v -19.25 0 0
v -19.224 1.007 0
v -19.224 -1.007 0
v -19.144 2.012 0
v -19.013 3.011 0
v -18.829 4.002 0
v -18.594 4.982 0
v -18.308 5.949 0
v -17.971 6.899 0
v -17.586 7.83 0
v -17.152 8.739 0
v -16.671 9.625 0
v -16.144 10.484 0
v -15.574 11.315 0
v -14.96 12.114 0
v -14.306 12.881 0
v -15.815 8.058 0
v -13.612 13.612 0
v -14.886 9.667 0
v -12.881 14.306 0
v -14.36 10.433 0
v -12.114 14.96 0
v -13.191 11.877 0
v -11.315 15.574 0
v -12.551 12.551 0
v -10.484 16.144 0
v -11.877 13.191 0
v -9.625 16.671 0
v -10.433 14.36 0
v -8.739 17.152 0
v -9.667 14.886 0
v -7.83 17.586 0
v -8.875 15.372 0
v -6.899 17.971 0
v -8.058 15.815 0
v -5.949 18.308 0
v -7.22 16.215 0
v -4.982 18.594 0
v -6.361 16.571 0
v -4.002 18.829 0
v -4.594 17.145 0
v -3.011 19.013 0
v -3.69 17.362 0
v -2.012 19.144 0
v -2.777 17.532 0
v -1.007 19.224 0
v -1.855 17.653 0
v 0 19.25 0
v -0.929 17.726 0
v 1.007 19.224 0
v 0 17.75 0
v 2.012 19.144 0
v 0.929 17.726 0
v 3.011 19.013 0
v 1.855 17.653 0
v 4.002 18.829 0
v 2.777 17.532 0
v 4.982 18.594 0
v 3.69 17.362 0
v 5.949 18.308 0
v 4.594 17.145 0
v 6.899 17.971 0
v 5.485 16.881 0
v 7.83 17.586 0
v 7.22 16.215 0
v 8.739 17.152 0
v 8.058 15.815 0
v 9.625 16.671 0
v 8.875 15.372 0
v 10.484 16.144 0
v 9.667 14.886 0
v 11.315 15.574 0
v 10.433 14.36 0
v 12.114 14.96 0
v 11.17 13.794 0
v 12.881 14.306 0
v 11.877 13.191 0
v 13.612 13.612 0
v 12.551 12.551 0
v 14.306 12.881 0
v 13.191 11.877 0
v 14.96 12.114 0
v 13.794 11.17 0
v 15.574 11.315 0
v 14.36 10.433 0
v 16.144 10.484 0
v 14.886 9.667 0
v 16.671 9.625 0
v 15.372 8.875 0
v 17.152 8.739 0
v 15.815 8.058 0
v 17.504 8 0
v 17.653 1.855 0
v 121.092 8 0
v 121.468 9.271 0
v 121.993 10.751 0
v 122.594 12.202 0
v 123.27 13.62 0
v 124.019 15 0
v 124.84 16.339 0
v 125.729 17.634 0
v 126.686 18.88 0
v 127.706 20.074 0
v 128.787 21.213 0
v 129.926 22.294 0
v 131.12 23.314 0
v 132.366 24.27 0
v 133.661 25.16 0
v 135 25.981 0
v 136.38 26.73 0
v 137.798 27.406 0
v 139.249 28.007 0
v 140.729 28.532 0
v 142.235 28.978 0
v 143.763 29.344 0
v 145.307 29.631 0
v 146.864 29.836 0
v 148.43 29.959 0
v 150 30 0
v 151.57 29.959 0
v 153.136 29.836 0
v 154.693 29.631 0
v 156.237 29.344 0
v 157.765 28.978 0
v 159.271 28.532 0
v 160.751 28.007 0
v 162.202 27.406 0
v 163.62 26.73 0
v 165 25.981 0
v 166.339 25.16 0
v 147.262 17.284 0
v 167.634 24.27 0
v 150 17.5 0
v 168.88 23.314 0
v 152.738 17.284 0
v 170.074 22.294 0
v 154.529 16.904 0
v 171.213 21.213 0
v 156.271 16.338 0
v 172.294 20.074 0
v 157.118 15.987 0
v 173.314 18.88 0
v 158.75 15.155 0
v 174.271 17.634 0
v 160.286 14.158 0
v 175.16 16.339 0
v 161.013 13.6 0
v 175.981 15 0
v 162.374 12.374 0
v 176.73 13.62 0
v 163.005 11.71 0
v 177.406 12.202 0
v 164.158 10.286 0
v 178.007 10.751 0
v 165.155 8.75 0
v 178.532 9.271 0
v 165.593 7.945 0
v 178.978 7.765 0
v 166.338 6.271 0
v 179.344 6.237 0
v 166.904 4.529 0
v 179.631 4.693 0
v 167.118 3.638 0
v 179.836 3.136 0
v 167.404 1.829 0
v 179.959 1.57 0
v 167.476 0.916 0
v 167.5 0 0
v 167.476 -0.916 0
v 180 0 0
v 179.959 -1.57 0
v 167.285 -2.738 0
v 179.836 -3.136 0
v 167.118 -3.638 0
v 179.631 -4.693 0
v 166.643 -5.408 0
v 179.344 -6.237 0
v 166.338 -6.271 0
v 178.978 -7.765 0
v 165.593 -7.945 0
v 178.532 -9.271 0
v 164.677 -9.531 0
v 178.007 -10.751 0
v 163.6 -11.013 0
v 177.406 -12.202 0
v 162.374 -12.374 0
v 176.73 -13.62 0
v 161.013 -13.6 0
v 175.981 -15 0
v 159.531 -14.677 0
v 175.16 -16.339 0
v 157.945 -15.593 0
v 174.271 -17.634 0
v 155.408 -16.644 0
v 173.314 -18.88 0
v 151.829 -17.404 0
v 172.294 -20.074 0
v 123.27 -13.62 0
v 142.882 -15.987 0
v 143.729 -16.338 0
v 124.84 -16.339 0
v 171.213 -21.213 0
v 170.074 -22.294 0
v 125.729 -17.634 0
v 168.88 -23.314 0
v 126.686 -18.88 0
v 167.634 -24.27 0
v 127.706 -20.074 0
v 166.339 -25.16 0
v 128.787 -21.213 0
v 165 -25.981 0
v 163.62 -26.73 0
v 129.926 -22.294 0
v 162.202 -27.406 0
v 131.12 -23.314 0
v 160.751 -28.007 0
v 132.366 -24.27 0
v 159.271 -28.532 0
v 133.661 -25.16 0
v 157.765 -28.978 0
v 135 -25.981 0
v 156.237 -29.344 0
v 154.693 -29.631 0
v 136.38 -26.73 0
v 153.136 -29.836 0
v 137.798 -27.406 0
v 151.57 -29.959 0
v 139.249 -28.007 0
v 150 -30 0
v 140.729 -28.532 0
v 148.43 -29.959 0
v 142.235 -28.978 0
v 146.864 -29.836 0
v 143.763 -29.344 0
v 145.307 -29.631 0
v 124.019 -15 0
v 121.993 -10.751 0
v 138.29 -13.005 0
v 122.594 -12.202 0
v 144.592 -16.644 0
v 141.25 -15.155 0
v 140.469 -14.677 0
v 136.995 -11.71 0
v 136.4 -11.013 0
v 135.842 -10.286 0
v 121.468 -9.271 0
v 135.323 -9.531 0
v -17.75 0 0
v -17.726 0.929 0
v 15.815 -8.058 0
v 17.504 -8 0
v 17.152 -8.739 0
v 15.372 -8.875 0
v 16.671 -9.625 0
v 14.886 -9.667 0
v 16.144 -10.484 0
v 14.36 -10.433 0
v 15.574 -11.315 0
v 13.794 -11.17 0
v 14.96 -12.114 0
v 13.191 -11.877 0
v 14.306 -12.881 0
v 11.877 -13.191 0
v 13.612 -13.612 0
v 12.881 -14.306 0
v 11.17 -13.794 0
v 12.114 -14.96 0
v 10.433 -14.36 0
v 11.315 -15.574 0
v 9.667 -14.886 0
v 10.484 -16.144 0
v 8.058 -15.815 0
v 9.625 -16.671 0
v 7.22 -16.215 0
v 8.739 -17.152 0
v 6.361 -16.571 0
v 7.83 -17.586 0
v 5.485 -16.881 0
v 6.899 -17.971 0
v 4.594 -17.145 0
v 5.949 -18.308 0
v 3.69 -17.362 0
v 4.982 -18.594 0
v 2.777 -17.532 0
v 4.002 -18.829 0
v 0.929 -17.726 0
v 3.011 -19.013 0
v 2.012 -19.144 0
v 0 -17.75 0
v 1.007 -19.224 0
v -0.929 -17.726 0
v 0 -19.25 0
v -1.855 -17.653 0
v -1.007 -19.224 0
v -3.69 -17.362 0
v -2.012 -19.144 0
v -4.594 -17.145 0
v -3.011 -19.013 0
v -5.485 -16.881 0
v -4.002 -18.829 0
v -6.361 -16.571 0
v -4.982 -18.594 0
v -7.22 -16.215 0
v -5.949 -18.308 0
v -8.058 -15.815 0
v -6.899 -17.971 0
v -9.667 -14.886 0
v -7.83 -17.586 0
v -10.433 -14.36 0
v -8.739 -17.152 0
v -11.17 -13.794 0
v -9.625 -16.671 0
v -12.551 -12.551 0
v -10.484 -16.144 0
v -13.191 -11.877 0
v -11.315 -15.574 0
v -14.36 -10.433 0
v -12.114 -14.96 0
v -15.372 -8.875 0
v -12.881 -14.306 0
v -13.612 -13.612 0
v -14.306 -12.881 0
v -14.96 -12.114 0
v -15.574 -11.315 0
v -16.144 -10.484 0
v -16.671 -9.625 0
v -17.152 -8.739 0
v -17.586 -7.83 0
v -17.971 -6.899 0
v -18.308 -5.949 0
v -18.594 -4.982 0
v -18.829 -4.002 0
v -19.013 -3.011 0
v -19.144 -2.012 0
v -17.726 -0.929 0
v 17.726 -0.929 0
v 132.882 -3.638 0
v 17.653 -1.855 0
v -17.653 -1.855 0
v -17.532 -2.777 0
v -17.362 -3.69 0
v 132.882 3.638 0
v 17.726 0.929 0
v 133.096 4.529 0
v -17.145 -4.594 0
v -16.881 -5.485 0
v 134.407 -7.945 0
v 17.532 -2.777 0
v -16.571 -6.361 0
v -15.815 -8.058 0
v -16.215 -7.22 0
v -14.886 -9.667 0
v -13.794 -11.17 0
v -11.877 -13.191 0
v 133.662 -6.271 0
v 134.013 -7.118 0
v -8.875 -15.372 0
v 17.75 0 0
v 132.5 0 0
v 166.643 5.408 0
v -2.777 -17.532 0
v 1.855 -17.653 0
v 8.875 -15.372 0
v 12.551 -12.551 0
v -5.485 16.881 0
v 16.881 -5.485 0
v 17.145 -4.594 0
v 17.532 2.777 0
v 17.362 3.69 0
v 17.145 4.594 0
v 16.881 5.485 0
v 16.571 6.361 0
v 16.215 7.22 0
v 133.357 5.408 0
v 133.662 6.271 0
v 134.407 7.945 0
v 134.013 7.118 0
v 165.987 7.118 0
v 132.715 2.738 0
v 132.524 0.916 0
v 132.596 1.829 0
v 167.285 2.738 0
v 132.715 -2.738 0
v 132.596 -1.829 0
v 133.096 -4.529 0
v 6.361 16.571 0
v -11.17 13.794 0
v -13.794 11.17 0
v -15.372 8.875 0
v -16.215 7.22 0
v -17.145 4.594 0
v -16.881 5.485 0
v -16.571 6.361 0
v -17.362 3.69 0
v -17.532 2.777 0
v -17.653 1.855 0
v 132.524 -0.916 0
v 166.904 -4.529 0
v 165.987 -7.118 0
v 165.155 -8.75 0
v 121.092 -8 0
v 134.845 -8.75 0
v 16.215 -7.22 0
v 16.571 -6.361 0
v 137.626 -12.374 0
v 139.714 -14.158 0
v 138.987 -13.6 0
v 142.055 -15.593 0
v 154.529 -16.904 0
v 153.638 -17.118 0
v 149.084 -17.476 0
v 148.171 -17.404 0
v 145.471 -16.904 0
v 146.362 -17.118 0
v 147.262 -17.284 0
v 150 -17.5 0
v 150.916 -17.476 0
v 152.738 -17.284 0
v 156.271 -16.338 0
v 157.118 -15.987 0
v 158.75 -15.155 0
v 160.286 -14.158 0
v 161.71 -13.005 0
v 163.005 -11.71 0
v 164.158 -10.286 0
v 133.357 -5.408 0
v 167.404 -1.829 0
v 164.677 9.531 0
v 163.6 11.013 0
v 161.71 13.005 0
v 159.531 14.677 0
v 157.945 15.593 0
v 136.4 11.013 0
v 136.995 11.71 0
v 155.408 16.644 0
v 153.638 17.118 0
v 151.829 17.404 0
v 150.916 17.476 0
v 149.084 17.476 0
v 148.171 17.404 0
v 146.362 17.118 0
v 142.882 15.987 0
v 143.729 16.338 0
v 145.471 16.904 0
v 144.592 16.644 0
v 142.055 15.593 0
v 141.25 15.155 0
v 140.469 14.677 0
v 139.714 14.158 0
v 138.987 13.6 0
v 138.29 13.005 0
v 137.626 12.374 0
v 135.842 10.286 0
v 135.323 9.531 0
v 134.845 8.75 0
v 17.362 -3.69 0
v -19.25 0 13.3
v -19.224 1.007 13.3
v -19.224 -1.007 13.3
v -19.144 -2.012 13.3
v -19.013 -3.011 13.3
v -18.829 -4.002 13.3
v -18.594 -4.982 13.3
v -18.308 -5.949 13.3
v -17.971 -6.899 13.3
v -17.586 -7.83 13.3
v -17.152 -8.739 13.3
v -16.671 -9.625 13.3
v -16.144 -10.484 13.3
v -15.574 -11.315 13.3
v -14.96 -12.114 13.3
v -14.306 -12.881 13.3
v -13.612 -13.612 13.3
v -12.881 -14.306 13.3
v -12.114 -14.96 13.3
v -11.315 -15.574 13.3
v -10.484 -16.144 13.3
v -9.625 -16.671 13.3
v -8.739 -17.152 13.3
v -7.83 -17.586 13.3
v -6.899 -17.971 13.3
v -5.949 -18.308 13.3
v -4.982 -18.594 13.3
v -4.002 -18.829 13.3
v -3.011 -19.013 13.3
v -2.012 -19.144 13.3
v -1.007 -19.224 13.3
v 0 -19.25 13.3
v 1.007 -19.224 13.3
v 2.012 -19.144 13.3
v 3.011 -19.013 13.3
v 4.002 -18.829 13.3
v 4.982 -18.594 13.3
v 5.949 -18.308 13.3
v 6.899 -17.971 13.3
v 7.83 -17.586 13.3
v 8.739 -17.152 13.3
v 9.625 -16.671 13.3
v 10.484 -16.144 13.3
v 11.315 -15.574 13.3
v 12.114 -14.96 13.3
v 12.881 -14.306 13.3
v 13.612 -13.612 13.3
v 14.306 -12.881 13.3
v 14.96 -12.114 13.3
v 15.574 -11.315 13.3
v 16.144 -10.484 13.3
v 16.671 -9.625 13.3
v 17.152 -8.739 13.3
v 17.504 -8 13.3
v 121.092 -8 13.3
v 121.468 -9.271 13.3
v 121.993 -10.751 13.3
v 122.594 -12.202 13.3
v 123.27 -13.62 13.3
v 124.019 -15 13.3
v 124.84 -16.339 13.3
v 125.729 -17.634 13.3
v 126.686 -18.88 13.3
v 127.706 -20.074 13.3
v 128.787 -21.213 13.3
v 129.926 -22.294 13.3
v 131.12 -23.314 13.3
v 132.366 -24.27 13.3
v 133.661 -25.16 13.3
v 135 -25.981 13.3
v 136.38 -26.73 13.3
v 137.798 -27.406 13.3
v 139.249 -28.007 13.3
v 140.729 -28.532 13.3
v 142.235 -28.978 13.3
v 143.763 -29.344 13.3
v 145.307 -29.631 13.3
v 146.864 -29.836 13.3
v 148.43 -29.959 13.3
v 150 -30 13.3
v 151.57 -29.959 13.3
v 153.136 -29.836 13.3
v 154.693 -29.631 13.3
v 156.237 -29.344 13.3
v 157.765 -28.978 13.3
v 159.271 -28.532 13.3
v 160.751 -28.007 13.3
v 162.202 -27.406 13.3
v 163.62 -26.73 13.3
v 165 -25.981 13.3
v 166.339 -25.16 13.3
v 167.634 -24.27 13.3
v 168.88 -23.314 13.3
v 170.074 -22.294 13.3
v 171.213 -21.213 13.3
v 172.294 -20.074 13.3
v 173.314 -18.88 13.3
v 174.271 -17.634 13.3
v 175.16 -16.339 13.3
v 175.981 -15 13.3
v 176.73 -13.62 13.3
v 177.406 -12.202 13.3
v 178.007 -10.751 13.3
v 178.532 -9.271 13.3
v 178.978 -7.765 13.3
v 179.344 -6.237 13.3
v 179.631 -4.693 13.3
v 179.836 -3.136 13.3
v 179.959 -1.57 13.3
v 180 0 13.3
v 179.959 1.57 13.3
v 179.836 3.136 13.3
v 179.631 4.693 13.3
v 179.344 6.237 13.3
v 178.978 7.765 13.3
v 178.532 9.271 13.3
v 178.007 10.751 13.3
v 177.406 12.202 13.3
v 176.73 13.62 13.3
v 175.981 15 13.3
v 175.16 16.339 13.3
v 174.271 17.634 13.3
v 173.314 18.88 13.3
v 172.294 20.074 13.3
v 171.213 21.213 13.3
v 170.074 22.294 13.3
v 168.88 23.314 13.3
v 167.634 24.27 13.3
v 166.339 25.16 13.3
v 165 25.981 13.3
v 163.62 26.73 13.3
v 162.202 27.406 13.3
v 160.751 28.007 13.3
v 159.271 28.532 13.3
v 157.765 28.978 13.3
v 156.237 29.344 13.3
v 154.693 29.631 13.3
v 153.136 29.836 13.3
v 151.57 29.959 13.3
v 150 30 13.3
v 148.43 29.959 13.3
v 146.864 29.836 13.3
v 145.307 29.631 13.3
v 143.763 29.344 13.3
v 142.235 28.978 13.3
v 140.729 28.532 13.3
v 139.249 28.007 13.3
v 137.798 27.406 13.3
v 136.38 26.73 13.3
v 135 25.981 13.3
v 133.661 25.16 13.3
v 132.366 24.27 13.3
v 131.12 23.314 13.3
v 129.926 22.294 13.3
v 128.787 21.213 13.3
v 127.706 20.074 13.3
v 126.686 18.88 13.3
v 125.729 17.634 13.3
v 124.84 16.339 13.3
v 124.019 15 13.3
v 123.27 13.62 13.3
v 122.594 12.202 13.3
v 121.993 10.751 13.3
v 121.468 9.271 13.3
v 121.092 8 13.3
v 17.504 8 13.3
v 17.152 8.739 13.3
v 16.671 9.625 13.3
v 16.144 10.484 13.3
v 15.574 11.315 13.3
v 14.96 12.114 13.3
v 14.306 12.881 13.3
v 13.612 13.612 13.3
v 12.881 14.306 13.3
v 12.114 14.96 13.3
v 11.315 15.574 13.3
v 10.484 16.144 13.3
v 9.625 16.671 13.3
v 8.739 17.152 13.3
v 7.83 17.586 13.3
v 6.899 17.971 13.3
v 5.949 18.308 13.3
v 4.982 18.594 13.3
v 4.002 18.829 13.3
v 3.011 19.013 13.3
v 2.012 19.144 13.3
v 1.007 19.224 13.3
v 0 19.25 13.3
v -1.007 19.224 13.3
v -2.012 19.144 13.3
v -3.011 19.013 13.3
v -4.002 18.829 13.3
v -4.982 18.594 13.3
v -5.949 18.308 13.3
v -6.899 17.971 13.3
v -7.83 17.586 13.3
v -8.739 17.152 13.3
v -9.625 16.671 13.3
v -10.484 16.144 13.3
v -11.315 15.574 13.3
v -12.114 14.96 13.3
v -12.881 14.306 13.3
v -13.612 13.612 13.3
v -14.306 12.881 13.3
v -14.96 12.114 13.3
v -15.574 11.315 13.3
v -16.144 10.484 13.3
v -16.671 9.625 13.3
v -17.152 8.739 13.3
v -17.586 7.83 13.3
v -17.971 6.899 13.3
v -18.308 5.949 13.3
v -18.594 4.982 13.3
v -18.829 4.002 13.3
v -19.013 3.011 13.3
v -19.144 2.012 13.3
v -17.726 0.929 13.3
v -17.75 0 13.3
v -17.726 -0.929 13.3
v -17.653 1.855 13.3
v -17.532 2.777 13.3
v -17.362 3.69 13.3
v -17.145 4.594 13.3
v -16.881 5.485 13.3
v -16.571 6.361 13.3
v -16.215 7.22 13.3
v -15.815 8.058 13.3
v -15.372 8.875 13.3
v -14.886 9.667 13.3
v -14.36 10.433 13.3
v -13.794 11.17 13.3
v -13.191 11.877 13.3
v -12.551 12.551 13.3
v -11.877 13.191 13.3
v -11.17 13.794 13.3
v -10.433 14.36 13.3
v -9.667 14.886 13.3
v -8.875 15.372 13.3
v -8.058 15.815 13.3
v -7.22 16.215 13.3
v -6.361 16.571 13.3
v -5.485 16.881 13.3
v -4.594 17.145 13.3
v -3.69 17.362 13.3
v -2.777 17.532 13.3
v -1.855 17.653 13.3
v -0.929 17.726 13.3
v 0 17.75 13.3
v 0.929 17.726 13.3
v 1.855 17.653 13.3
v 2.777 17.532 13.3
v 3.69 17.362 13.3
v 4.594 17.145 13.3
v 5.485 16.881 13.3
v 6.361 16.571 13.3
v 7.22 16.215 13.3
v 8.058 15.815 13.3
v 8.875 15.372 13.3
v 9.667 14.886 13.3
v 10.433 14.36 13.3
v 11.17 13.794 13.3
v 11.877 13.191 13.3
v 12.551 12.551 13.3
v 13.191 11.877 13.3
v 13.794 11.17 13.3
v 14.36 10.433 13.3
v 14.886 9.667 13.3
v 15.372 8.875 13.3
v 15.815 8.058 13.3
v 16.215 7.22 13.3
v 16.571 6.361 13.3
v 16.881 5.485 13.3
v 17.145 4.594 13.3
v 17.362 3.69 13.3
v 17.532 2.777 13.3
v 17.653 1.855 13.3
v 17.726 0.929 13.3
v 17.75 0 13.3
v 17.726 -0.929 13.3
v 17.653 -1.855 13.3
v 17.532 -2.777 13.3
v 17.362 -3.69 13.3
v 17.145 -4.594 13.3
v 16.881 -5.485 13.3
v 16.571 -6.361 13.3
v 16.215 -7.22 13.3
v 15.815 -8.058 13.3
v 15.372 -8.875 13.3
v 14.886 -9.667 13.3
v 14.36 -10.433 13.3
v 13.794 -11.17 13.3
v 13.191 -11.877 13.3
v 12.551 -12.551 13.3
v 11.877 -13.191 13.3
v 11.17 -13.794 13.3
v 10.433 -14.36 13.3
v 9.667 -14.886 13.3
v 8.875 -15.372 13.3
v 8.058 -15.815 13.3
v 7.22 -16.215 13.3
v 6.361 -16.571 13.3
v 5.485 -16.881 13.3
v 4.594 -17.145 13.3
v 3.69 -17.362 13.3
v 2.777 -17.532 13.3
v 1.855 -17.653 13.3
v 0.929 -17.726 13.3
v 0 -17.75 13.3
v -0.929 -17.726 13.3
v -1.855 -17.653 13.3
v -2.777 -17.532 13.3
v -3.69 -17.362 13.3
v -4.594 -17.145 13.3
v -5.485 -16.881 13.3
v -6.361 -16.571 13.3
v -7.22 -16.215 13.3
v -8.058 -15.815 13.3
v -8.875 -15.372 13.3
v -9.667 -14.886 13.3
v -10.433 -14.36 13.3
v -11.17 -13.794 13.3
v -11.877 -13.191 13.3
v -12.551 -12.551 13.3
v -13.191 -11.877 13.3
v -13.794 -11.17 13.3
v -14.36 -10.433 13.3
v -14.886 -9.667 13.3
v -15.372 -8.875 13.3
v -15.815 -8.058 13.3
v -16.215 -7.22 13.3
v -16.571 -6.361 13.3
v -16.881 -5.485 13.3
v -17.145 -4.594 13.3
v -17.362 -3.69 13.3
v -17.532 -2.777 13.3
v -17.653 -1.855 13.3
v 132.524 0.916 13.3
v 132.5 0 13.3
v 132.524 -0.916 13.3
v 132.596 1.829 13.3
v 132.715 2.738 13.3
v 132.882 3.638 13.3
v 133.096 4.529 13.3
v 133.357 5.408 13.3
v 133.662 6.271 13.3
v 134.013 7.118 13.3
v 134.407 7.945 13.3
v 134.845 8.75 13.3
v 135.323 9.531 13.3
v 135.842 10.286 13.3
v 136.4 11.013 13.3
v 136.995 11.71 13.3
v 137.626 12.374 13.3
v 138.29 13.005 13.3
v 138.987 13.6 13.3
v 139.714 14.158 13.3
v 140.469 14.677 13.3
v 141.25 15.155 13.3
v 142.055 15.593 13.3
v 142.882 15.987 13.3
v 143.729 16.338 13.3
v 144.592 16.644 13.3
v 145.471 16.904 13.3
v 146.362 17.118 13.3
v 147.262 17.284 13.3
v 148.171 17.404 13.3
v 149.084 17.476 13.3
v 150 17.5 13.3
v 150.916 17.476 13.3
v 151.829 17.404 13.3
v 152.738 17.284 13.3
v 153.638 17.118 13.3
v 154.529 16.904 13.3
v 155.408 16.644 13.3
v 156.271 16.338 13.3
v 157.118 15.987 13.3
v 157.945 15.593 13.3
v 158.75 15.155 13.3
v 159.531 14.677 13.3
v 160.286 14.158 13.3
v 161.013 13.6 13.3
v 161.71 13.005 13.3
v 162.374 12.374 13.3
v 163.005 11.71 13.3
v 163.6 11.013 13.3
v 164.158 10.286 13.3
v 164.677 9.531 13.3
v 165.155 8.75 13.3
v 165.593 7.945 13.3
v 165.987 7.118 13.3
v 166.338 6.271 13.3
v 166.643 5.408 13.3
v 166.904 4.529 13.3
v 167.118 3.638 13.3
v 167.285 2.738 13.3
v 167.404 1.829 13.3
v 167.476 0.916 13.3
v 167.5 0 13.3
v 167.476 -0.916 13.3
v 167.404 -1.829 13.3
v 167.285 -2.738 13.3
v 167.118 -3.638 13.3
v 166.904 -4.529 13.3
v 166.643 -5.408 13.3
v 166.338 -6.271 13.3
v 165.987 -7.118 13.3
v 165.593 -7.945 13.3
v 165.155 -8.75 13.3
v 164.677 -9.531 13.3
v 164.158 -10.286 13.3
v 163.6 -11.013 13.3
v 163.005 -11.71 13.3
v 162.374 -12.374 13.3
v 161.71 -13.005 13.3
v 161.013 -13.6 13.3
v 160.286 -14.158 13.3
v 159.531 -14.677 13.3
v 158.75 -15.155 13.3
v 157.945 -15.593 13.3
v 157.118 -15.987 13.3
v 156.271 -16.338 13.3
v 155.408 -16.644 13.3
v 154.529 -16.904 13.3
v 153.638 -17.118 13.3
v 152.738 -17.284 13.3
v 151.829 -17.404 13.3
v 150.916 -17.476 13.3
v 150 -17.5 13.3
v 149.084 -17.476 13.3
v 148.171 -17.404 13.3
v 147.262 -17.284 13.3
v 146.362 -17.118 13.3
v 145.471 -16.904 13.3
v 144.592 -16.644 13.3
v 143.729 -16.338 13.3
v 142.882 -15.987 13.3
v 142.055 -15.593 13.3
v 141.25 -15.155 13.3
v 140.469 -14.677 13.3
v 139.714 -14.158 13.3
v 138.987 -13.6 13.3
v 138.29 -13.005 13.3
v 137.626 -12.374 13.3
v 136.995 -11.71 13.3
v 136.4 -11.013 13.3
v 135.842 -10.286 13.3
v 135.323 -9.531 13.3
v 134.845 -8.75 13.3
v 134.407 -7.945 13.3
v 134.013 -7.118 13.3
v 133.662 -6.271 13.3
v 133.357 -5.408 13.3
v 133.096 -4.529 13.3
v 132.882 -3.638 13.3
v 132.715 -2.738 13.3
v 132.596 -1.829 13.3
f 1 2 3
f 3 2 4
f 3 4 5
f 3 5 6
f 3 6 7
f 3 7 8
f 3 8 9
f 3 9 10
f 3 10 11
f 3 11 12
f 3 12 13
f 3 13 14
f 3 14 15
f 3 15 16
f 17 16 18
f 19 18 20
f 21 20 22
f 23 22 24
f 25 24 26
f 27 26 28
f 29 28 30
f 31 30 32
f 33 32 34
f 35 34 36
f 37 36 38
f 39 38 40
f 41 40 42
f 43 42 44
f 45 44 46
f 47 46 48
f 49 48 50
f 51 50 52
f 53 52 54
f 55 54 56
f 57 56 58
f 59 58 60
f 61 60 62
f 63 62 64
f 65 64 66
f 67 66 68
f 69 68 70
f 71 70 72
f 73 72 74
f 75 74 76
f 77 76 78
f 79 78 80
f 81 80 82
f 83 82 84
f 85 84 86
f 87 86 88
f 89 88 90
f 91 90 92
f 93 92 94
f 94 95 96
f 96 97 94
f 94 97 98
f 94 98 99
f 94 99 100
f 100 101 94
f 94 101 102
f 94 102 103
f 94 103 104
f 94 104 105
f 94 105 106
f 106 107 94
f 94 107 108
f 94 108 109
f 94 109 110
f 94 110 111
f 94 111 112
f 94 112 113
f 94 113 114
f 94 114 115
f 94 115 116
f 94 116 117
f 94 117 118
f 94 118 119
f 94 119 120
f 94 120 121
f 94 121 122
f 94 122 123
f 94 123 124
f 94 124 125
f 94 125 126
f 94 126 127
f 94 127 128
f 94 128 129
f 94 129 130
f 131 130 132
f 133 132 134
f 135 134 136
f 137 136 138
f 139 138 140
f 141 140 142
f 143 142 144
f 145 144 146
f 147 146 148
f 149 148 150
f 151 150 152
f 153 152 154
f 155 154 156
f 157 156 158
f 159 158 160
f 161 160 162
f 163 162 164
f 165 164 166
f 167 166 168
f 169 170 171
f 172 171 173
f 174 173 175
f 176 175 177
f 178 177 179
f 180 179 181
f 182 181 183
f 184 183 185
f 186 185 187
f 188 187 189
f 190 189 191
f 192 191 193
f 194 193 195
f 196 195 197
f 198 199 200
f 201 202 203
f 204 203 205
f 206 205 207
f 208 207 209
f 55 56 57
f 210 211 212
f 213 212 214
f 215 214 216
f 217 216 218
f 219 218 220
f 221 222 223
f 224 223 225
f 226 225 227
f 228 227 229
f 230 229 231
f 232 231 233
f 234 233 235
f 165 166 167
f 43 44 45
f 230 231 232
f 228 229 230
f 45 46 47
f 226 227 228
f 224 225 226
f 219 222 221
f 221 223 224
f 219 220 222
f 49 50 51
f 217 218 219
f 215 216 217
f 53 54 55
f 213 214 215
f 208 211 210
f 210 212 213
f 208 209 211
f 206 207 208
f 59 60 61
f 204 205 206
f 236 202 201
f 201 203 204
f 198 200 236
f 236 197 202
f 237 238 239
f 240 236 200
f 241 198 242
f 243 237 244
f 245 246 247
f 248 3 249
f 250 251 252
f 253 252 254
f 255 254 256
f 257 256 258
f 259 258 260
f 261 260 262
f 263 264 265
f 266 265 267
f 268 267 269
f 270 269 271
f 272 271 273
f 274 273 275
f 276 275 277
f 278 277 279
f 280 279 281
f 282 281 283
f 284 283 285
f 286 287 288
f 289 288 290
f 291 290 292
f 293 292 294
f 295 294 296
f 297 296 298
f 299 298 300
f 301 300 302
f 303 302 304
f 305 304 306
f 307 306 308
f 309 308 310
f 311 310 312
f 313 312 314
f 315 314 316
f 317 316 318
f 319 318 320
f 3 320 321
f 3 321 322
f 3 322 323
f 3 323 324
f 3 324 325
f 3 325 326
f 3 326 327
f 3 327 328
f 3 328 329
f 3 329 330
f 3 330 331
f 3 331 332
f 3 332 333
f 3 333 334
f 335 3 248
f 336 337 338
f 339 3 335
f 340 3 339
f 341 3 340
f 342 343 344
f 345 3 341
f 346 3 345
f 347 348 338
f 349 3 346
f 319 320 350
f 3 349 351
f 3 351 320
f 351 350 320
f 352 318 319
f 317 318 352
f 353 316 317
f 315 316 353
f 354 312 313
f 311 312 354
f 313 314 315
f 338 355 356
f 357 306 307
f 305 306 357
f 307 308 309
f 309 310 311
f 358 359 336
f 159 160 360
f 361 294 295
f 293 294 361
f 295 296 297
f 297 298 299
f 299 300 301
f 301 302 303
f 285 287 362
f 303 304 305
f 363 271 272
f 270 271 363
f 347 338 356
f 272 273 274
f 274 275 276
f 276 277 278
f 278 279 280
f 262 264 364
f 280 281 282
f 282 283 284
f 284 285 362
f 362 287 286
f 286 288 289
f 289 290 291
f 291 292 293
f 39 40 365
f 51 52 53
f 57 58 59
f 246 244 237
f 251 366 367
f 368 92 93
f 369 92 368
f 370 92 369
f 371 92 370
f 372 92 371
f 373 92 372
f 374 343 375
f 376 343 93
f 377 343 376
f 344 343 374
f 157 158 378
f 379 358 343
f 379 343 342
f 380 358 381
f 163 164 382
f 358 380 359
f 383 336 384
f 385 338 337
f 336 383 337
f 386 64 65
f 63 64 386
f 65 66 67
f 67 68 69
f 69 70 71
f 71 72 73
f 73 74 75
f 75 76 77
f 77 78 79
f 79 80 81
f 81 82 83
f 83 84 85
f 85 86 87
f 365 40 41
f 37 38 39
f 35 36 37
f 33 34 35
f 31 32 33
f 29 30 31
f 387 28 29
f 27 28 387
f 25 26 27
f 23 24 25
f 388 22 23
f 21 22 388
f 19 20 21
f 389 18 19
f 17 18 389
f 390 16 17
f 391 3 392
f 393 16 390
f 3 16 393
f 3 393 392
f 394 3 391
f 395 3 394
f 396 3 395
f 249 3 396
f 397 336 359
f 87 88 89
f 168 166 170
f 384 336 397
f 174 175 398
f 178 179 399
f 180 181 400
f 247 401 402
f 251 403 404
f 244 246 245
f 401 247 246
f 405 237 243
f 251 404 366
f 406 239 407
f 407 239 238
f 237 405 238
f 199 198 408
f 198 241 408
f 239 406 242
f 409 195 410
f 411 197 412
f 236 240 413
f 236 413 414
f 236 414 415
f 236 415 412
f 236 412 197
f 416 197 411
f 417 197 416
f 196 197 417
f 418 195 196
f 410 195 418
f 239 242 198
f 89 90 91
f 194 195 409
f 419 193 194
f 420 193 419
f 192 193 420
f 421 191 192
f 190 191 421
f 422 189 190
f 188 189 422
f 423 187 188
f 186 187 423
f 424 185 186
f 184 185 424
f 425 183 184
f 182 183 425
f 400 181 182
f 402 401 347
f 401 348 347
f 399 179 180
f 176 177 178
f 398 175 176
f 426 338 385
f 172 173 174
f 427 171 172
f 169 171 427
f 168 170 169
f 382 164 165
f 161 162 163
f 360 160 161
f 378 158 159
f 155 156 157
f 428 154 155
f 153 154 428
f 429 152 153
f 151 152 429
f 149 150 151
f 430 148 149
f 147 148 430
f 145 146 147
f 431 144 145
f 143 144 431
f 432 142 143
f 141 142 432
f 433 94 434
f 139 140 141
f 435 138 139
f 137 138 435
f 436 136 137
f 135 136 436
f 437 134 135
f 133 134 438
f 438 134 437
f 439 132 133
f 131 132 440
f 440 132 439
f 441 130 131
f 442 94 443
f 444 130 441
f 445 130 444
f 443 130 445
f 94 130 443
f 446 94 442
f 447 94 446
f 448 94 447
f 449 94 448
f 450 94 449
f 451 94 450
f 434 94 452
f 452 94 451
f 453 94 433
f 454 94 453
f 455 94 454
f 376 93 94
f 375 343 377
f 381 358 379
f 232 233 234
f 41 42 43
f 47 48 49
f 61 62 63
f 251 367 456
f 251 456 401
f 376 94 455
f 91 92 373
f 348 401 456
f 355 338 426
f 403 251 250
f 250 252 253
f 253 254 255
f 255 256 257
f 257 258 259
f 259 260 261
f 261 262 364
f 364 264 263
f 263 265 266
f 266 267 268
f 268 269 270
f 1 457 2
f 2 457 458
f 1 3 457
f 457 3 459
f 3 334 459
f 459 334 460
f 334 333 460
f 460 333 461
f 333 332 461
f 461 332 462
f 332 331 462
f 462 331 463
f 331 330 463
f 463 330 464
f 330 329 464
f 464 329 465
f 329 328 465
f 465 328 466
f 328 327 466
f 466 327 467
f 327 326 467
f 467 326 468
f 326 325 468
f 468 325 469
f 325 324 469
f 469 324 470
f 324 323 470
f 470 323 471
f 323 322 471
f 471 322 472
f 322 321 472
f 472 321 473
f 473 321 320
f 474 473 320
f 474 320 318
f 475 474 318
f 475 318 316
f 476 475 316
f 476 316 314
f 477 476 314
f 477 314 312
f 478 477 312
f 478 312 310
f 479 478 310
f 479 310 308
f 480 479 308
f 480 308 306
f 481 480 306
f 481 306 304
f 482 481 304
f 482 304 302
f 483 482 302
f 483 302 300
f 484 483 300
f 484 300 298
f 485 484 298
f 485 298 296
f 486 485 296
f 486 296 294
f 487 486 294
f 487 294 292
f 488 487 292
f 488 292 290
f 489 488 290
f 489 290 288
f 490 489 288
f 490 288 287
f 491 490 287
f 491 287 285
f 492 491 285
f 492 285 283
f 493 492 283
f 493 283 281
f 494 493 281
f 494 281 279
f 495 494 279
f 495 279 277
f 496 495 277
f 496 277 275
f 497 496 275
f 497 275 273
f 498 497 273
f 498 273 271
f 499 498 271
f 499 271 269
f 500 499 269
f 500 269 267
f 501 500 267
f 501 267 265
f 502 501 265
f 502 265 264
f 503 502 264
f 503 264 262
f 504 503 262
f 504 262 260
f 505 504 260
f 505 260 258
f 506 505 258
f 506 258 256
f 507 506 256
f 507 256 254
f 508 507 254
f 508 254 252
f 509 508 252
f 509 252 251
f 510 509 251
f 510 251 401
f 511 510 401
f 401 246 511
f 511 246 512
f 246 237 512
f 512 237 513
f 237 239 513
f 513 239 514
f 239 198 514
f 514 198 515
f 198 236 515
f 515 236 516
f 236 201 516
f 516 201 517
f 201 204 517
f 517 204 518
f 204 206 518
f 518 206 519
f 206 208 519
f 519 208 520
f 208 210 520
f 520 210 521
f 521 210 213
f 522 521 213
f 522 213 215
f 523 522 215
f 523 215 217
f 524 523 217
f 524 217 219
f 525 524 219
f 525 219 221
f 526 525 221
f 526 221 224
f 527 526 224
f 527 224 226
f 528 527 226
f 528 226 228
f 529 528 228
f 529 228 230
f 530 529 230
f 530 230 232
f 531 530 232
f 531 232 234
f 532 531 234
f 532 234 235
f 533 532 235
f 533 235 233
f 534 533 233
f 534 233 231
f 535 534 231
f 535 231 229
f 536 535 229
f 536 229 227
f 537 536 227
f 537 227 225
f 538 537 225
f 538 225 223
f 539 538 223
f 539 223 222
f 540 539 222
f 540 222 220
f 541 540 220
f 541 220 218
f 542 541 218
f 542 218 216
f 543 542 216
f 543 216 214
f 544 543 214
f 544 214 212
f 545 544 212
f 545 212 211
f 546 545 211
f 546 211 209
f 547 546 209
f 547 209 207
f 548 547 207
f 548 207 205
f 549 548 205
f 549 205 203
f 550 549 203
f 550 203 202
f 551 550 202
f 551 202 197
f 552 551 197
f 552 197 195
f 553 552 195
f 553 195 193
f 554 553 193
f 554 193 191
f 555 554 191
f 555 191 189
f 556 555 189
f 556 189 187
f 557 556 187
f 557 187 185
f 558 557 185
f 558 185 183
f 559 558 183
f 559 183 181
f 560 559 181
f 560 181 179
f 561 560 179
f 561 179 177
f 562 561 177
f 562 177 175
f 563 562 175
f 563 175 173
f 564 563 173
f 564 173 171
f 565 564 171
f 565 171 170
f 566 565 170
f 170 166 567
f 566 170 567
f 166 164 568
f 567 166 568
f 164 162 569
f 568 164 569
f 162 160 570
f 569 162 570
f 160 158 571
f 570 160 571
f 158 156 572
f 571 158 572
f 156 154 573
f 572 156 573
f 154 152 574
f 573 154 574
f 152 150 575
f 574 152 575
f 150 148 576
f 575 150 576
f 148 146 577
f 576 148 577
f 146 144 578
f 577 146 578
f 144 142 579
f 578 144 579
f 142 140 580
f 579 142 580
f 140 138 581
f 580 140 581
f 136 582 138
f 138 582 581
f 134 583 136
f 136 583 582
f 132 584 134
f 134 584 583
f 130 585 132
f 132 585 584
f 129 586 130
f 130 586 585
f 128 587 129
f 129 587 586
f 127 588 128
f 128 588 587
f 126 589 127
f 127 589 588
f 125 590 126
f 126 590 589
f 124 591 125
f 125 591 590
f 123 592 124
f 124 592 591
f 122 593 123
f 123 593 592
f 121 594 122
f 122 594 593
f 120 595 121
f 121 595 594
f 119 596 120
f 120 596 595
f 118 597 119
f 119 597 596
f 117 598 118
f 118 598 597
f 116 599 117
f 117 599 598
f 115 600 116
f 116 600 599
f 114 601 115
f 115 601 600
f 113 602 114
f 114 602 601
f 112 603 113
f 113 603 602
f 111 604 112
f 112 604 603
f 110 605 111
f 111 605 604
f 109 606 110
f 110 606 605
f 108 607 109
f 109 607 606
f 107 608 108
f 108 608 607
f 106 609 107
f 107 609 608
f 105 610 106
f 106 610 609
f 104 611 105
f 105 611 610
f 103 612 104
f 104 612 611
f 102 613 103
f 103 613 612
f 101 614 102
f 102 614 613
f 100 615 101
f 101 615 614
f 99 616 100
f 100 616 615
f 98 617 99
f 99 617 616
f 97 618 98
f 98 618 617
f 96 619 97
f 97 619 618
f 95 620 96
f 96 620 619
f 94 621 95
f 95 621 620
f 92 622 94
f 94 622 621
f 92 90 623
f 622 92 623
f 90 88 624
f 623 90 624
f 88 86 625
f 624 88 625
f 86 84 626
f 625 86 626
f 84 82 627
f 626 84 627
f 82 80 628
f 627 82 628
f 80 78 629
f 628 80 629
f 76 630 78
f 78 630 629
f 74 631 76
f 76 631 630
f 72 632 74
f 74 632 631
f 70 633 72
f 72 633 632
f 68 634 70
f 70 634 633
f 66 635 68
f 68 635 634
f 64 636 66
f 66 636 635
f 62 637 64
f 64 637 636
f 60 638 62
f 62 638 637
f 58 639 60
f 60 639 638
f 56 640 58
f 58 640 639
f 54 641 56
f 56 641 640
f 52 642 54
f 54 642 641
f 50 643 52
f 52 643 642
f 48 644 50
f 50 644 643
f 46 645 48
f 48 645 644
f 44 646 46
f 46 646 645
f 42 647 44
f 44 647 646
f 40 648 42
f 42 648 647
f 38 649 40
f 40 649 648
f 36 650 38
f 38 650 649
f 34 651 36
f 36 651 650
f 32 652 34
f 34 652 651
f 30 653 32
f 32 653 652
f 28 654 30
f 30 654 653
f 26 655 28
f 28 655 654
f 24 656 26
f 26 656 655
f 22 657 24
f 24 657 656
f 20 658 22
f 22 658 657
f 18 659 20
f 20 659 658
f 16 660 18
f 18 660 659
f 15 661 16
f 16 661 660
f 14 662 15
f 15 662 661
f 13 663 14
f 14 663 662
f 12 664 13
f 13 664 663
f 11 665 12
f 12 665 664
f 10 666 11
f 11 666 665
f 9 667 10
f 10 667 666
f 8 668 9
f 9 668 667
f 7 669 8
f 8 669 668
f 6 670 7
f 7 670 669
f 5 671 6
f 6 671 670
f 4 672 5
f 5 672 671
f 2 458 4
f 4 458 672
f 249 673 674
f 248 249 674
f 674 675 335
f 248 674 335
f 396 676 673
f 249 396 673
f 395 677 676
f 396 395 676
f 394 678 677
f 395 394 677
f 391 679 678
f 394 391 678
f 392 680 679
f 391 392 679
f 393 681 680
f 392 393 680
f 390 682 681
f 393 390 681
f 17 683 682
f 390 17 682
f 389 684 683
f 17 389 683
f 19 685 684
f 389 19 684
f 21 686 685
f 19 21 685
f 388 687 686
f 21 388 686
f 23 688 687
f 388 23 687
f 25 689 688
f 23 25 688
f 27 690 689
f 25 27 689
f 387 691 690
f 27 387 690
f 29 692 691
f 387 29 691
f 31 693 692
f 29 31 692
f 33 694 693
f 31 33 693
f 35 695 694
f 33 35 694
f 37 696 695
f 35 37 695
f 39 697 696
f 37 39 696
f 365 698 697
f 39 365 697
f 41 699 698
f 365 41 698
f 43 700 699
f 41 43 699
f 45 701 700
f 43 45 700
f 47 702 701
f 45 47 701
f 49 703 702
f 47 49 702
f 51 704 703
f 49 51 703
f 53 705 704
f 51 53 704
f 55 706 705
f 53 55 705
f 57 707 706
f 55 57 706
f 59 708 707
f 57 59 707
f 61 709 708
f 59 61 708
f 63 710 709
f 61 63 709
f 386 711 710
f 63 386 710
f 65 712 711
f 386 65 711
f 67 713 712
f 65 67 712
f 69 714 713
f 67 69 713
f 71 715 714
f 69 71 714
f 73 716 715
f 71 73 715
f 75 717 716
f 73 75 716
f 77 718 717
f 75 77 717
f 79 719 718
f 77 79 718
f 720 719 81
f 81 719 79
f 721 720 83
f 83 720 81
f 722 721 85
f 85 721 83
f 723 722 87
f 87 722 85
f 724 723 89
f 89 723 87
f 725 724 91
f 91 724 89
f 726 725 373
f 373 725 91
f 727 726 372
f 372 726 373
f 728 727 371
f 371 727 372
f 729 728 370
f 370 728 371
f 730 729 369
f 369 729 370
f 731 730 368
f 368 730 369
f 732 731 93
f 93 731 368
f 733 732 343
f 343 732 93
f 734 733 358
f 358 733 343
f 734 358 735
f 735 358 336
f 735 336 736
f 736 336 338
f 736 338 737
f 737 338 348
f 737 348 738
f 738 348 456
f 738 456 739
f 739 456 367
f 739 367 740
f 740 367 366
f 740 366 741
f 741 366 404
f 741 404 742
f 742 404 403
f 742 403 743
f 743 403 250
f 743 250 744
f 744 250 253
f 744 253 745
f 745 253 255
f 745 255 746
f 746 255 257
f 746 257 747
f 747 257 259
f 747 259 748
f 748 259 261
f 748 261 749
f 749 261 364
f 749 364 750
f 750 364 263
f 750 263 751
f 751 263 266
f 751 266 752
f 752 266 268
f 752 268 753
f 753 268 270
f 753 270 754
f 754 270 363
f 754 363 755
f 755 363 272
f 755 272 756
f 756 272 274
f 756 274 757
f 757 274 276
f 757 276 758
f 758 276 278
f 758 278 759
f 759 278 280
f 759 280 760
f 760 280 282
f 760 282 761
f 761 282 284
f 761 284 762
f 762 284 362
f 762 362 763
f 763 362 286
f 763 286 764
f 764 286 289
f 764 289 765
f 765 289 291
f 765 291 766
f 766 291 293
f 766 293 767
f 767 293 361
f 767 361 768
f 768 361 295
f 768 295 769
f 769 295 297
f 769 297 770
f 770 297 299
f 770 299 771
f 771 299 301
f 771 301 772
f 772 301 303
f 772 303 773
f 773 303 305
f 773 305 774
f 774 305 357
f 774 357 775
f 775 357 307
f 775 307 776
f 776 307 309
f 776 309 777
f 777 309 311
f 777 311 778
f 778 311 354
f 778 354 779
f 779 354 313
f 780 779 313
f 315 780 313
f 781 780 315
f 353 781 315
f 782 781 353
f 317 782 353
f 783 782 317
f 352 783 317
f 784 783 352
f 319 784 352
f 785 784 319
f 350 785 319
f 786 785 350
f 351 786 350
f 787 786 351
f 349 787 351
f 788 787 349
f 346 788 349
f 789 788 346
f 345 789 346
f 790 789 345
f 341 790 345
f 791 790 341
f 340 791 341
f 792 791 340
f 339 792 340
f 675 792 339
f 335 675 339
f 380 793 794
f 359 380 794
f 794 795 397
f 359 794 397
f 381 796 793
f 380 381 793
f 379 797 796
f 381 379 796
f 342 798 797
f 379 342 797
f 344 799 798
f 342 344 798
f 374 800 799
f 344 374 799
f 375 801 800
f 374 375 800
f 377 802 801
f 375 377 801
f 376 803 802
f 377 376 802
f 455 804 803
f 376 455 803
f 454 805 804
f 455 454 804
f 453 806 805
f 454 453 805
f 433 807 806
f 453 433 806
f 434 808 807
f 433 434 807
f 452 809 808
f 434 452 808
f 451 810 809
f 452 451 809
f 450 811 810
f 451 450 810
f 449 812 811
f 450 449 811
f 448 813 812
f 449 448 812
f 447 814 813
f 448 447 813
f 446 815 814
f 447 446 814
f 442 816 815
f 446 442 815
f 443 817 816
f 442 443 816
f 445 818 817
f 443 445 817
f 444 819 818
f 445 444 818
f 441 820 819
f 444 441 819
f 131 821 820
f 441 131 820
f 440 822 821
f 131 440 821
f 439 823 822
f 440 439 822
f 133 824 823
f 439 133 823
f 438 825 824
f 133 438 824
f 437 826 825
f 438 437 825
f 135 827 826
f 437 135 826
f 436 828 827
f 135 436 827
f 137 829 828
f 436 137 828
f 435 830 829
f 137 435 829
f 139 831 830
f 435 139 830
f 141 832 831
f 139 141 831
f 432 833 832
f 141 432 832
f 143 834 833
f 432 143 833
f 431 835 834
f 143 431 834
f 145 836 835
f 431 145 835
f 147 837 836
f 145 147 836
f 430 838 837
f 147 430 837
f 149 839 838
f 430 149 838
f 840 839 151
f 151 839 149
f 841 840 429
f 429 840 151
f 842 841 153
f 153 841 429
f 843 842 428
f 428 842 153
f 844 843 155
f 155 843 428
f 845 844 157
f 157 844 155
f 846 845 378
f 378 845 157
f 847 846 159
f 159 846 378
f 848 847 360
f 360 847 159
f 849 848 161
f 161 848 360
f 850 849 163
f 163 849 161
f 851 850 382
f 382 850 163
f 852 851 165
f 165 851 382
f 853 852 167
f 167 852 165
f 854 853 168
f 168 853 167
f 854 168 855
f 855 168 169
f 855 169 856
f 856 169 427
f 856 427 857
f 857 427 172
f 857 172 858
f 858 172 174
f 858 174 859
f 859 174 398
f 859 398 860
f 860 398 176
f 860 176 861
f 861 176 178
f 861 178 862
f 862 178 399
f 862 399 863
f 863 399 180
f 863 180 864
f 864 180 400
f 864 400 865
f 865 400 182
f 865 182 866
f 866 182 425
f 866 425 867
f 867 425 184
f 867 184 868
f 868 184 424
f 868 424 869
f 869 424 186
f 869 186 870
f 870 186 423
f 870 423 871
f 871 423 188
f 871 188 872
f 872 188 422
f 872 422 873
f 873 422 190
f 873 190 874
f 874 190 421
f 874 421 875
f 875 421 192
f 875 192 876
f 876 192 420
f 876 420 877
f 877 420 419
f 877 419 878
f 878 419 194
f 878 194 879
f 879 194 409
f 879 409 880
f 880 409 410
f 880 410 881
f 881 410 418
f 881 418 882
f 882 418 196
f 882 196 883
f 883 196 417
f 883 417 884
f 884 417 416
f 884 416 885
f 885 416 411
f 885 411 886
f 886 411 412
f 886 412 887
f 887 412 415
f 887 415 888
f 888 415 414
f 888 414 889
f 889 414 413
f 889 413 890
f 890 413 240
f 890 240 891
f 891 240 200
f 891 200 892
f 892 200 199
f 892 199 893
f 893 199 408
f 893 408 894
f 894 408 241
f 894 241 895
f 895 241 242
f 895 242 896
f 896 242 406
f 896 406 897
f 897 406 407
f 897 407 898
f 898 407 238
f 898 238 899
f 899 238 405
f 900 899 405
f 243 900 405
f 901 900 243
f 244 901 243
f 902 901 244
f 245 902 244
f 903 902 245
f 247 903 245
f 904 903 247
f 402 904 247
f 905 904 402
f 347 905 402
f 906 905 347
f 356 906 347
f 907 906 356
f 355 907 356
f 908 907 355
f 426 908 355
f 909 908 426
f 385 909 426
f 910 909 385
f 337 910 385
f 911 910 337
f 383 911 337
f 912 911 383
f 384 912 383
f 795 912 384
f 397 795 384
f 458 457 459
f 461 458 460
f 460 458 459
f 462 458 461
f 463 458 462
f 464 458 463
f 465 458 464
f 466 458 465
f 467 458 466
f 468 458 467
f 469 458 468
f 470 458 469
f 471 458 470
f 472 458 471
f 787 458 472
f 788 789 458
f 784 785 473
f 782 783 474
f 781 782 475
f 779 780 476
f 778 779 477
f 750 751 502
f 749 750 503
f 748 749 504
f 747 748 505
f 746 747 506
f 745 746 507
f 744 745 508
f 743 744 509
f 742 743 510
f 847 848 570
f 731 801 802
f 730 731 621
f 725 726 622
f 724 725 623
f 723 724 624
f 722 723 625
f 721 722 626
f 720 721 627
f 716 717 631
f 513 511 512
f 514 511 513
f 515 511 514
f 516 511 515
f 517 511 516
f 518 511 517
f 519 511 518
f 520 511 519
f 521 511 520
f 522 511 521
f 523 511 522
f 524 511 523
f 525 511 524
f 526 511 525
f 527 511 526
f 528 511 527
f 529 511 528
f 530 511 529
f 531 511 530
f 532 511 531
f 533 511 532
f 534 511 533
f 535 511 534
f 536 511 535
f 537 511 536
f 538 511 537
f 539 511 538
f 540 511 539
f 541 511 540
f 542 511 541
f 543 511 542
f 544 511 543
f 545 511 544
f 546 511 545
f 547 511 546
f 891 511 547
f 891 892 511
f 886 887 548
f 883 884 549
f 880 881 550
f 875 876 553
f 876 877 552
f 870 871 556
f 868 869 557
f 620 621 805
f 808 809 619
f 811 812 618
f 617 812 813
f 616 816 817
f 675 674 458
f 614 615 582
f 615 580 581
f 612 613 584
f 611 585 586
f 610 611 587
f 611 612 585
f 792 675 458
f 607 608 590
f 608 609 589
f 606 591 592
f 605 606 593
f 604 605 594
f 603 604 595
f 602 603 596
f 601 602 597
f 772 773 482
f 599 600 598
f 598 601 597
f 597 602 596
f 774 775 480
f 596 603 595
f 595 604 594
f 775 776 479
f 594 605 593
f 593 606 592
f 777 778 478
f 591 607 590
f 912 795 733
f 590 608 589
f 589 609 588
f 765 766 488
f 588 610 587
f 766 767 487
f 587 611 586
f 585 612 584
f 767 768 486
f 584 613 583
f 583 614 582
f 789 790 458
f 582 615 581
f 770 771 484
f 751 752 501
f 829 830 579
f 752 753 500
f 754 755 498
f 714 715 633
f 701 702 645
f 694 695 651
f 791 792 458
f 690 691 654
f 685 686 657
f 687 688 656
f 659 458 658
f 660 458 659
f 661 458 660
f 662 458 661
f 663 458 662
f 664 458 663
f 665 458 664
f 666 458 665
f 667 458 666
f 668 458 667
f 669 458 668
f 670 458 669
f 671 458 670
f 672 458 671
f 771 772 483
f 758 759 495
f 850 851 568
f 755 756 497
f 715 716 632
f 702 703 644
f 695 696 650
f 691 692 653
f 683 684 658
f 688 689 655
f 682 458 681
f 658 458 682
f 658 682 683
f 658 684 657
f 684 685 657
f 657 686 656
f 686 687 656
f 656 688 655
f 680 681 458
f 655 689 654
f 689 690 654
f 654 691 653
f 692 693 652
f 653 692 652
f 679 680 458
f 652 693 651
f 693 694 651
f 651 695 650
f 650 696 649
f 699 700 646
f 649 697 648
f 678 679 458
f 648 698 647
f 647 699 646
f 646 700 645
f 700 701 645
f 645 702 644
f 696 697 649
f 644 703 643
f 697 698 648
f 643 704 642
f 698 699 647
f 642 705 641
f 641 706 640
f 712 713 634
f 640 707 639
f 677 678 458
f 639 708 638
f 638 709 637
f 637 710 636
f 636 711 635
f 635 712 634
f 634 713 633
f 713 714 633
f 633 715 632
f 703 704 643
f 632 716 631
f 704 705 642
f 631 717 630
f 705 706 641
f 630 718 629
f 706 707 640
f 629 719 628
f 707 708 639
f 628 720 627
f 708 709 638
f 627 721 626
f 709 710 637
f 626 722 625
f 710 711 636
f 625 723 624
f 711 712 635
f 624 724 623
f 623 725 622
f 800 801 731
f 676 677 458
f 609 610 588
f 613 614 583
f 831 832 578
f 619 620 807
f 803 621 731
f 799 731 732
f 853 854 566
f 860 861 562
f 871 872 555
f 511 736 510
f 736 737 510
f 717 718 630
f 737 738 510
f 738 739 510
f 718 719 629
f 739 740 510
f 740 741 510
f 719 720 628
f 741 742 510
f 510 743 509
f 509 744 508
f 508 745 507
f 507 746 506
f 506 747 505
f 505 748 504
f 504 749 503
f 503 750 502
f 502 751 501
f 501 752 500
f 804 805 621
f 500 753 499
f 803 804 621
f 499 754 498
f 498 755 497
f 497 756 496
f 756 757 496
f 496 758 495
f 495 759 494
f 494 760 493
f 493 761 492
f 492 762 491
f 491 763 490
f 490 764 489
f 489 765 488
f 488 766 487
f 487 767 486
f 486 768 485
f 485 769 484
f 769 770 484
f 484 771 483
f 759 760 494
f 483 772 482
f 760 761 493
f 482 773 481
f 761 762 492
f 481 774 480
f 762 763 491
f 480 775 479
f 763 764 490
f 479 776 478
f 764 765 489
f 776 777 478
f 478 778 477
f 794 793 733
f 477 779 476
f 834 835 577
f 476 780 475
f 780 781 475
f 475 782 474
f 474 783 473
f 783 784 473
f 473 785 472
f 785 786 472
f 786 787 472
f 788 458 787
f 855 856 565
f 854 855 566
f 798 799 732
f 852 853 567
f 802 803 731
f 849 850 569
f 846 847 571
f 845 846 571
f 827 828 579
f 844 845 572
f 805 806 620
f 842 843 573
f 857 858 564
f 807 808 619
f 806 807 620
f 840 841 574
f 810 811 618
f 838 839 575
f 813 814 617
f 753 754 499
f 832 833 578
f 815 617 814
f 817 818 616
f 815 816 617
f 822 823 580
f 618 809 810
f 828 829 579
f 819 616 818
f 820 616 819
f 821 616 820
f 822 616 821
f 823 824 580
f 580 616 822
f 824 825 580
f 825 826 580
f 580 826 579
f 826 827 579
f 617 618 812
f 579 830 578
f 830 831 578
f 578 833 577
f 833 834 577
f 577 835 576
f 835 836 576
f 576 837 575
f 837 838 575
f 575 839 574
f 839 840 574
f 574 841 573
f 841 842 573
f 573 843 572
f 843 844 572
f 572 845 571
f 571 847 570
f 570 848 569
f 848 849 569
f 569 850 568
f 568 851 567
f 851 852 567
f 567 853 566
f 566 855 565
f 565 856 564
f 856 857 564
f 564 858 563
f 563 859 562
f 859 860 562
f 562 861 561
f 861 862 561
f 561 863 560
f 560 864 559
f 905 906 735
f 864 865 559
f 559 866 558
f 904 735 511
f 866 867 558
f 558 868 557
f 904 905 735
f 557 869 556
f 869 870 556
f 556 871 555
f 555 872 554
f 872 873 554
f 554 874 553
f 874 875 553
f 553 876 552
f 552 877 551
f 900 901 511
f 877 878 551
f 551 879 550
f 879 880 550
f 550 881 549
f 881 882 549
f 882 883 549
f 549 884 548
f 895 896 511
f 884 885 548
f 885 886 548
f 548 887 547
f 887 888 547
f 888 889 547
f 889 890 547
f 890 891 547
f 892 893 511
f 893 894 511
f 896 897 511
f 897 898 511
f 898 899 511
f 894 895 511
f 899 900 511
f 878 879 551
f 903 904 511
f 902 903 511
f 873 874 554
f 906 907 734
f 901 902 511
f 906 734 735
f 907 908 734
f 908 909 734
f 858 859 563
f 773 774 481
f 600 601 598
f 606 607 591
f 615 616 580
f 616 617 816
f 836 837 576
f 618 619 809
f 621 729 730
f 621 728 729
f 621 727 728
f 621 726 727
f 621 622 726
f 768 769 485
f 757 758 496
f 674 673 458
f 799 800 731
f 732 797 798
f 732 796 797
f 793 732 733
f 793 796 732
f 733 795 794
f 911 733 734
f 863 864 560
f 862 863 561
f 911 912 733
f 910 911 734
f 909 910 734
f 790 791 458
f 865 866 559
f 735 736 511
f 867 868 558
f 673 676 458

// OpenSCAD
$fn=120;
socket_od=38.5;
socket_or=socket_od/2;
socket_id=35.5;
socket_ir=socket_id/2;
socket_h=13.3;
pad=0.1;
2pad=pad*2;2pad=pad*2;

arm_x=150;
arm_y=16;
arm_z=socket_h;

center_od=60;
center_or=center_od/2;
center_id=35;
center_ir=center_id/2;
center_h=socket_h;

difference() {
	union() {
		cylinder(h=socket_h,r=socket_or);
		translate([0,-arm_y/2,0])
		cube([arm_x,arm_y,arm_z]);
		translate([arm_x,0,0]) {
			cylinder(h=center_h,r=center_or);
			//rotate([0,0,45])
			//cube([center_od,center_od,center_h]);
		}
	}
	translate([0,0,-pad]) {
		cylinder(h=socket_h+2pad,r=socket_ir);
		translate([arm_x,0,0])
		cylinder(h=socket_h+2pad,r=center_ir);
	}
}
